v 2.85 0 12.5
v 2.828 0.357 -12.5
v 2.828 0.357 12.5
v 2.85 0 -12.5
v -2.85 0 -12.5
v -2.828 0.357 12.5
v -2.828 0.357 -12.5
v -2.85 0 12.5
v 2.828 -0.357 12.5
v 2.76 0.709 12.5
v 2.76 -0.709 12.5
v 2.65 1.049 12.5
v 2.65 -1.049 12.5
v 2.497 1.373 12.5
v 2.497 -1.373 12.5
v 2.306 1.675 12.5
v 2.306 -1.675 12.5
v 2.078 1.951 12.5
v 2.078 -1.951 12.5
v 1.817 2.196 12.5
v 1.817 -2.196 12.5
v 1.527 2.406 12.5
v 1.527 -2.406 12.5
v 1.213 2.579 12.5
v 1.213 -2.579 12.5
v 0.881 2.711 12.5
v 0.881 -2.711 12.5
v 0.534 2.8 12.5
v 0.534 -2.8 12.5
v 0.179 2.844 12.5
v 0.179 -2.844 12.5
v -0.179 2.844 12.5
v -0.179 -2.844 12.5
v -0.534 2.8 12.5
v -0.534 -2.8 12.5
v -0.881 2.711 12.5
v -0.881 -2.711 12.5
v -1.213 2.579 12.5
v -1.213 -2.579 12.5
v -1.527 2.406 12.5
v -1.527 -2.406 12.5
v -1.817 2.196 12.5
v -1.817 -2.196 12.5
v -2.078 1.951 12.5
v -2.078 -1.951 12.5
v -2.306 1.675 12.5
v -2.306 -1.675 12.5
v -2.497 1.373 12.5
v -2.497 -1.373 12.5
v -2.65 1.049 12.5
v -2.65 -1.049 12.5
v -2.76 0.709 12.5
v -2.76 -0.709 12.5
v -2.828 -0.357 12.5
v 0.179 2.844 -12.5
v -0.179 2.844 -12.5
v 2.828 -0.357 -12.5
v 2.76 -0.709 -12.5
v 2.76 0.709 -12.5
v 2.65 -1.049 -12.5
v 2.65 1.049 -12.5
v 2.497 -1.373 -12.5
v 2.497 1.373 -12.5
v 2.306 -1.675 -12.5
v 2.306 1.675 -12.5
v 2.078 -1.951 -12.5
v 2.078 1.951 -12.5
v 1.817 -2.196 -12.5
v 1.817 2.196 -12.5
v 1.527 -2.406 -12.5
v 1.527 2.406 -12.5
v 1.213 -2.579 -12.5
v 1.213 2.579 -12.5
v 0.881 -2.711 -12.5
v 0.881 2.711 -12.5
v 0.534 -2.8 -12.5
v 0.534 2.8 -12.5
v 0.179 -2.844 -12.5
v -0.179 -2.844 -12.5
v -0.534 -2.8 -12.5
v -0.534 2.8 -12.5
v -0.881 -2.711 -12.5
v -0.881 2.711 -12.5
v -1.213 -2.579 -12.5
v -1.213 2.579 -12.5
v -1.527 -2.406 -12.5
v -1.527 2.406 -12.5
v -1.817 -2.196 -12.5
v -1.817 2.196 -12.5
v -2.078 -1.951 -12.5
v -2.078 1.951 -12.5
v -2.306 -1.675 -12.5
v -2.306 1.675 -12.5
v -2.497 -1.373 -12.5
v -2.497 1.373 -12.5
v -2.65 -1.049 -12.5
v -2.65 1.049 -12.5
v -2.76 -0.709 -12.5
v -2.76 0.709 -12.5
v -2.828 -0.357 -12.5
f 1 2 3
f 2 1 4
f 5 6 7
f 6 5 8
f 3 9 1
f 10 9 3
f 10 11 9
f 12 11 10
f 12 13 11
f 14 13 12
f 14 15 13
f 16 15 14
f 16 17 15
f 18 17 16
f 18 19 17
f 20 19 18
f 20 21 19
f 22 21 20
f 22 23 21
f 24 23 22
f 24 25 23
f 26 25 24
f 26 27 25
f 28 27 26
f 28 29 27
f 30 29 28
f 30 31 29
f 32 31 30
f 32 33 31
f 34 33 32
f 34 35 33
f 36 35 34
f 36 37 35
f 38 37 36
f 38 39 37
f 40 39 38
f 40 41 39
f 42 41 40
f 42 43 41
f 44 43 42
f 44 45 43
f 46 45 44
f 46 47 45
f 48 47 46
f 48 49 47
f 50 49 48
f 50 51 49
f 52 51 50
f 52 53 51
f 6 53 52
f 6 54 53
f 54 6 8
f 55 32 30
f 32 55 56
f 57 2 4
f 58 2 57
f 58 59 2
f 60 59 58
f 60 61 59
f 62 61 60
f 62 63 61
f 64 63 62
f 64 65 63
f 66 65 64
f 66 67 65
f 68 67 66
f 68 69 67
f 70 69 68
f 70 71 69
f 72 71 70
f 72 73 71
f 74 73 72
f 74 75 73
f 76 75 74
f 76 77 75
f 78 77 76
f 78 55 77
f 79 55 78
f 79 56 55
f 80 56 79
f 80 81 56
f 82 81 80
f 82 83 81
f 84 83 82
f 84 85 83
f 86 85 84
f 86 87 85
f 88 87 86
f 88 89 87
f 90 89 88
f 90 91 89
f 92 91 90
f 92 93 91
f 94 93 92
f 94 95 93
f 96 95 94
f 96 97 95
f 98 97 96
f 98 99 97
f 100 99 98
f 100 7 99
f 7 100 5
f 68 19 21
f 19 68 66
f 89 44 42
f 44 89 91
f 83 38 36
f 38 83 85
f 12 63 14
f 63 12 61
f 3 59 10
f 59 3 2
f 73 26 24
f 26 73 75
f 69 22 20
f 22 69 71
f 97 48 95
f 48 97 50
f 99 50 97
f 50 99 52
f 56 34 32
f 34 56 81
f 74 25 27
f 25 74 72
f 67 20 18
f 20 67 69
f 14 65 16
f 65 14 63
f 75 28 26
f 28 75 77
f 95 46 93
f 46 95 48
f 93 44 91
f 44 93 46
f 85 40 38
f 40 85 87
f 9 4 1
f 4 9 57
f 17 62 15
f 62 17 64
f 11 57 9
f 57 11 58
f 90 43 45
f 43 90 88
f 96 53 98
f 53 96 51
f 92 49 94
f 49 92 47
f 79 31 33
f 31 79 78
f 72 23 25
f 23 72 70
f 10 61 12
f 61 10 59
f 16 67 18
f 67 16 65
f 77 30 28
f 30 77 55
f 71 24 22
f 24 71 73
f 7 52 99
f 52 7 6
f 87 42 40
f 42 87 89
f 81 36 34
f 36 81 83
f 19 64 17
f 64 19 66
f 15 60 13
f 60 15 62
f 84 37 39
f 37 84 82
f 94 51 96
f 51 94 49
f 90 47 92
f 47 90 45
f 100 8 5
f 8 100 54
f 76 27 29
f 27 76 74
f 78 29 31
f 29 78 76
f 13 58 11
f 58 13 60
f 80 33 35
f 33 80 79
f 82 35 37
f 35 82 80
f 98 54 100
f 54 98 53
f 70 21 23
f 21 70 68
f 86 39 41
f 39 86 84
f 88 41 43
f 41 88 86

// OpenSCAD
$fn = 50;


difference() {
	union() {
		translate(v = [0, 0, -12.5000000000]) {
			cylinder(h = 25, r = 2.8500000000);
		}
	}
	union() {
		translate(v = [0, 0, -100.0000000000]) {
			cylinder(h = 200, r = 0);
		}
	}
}
